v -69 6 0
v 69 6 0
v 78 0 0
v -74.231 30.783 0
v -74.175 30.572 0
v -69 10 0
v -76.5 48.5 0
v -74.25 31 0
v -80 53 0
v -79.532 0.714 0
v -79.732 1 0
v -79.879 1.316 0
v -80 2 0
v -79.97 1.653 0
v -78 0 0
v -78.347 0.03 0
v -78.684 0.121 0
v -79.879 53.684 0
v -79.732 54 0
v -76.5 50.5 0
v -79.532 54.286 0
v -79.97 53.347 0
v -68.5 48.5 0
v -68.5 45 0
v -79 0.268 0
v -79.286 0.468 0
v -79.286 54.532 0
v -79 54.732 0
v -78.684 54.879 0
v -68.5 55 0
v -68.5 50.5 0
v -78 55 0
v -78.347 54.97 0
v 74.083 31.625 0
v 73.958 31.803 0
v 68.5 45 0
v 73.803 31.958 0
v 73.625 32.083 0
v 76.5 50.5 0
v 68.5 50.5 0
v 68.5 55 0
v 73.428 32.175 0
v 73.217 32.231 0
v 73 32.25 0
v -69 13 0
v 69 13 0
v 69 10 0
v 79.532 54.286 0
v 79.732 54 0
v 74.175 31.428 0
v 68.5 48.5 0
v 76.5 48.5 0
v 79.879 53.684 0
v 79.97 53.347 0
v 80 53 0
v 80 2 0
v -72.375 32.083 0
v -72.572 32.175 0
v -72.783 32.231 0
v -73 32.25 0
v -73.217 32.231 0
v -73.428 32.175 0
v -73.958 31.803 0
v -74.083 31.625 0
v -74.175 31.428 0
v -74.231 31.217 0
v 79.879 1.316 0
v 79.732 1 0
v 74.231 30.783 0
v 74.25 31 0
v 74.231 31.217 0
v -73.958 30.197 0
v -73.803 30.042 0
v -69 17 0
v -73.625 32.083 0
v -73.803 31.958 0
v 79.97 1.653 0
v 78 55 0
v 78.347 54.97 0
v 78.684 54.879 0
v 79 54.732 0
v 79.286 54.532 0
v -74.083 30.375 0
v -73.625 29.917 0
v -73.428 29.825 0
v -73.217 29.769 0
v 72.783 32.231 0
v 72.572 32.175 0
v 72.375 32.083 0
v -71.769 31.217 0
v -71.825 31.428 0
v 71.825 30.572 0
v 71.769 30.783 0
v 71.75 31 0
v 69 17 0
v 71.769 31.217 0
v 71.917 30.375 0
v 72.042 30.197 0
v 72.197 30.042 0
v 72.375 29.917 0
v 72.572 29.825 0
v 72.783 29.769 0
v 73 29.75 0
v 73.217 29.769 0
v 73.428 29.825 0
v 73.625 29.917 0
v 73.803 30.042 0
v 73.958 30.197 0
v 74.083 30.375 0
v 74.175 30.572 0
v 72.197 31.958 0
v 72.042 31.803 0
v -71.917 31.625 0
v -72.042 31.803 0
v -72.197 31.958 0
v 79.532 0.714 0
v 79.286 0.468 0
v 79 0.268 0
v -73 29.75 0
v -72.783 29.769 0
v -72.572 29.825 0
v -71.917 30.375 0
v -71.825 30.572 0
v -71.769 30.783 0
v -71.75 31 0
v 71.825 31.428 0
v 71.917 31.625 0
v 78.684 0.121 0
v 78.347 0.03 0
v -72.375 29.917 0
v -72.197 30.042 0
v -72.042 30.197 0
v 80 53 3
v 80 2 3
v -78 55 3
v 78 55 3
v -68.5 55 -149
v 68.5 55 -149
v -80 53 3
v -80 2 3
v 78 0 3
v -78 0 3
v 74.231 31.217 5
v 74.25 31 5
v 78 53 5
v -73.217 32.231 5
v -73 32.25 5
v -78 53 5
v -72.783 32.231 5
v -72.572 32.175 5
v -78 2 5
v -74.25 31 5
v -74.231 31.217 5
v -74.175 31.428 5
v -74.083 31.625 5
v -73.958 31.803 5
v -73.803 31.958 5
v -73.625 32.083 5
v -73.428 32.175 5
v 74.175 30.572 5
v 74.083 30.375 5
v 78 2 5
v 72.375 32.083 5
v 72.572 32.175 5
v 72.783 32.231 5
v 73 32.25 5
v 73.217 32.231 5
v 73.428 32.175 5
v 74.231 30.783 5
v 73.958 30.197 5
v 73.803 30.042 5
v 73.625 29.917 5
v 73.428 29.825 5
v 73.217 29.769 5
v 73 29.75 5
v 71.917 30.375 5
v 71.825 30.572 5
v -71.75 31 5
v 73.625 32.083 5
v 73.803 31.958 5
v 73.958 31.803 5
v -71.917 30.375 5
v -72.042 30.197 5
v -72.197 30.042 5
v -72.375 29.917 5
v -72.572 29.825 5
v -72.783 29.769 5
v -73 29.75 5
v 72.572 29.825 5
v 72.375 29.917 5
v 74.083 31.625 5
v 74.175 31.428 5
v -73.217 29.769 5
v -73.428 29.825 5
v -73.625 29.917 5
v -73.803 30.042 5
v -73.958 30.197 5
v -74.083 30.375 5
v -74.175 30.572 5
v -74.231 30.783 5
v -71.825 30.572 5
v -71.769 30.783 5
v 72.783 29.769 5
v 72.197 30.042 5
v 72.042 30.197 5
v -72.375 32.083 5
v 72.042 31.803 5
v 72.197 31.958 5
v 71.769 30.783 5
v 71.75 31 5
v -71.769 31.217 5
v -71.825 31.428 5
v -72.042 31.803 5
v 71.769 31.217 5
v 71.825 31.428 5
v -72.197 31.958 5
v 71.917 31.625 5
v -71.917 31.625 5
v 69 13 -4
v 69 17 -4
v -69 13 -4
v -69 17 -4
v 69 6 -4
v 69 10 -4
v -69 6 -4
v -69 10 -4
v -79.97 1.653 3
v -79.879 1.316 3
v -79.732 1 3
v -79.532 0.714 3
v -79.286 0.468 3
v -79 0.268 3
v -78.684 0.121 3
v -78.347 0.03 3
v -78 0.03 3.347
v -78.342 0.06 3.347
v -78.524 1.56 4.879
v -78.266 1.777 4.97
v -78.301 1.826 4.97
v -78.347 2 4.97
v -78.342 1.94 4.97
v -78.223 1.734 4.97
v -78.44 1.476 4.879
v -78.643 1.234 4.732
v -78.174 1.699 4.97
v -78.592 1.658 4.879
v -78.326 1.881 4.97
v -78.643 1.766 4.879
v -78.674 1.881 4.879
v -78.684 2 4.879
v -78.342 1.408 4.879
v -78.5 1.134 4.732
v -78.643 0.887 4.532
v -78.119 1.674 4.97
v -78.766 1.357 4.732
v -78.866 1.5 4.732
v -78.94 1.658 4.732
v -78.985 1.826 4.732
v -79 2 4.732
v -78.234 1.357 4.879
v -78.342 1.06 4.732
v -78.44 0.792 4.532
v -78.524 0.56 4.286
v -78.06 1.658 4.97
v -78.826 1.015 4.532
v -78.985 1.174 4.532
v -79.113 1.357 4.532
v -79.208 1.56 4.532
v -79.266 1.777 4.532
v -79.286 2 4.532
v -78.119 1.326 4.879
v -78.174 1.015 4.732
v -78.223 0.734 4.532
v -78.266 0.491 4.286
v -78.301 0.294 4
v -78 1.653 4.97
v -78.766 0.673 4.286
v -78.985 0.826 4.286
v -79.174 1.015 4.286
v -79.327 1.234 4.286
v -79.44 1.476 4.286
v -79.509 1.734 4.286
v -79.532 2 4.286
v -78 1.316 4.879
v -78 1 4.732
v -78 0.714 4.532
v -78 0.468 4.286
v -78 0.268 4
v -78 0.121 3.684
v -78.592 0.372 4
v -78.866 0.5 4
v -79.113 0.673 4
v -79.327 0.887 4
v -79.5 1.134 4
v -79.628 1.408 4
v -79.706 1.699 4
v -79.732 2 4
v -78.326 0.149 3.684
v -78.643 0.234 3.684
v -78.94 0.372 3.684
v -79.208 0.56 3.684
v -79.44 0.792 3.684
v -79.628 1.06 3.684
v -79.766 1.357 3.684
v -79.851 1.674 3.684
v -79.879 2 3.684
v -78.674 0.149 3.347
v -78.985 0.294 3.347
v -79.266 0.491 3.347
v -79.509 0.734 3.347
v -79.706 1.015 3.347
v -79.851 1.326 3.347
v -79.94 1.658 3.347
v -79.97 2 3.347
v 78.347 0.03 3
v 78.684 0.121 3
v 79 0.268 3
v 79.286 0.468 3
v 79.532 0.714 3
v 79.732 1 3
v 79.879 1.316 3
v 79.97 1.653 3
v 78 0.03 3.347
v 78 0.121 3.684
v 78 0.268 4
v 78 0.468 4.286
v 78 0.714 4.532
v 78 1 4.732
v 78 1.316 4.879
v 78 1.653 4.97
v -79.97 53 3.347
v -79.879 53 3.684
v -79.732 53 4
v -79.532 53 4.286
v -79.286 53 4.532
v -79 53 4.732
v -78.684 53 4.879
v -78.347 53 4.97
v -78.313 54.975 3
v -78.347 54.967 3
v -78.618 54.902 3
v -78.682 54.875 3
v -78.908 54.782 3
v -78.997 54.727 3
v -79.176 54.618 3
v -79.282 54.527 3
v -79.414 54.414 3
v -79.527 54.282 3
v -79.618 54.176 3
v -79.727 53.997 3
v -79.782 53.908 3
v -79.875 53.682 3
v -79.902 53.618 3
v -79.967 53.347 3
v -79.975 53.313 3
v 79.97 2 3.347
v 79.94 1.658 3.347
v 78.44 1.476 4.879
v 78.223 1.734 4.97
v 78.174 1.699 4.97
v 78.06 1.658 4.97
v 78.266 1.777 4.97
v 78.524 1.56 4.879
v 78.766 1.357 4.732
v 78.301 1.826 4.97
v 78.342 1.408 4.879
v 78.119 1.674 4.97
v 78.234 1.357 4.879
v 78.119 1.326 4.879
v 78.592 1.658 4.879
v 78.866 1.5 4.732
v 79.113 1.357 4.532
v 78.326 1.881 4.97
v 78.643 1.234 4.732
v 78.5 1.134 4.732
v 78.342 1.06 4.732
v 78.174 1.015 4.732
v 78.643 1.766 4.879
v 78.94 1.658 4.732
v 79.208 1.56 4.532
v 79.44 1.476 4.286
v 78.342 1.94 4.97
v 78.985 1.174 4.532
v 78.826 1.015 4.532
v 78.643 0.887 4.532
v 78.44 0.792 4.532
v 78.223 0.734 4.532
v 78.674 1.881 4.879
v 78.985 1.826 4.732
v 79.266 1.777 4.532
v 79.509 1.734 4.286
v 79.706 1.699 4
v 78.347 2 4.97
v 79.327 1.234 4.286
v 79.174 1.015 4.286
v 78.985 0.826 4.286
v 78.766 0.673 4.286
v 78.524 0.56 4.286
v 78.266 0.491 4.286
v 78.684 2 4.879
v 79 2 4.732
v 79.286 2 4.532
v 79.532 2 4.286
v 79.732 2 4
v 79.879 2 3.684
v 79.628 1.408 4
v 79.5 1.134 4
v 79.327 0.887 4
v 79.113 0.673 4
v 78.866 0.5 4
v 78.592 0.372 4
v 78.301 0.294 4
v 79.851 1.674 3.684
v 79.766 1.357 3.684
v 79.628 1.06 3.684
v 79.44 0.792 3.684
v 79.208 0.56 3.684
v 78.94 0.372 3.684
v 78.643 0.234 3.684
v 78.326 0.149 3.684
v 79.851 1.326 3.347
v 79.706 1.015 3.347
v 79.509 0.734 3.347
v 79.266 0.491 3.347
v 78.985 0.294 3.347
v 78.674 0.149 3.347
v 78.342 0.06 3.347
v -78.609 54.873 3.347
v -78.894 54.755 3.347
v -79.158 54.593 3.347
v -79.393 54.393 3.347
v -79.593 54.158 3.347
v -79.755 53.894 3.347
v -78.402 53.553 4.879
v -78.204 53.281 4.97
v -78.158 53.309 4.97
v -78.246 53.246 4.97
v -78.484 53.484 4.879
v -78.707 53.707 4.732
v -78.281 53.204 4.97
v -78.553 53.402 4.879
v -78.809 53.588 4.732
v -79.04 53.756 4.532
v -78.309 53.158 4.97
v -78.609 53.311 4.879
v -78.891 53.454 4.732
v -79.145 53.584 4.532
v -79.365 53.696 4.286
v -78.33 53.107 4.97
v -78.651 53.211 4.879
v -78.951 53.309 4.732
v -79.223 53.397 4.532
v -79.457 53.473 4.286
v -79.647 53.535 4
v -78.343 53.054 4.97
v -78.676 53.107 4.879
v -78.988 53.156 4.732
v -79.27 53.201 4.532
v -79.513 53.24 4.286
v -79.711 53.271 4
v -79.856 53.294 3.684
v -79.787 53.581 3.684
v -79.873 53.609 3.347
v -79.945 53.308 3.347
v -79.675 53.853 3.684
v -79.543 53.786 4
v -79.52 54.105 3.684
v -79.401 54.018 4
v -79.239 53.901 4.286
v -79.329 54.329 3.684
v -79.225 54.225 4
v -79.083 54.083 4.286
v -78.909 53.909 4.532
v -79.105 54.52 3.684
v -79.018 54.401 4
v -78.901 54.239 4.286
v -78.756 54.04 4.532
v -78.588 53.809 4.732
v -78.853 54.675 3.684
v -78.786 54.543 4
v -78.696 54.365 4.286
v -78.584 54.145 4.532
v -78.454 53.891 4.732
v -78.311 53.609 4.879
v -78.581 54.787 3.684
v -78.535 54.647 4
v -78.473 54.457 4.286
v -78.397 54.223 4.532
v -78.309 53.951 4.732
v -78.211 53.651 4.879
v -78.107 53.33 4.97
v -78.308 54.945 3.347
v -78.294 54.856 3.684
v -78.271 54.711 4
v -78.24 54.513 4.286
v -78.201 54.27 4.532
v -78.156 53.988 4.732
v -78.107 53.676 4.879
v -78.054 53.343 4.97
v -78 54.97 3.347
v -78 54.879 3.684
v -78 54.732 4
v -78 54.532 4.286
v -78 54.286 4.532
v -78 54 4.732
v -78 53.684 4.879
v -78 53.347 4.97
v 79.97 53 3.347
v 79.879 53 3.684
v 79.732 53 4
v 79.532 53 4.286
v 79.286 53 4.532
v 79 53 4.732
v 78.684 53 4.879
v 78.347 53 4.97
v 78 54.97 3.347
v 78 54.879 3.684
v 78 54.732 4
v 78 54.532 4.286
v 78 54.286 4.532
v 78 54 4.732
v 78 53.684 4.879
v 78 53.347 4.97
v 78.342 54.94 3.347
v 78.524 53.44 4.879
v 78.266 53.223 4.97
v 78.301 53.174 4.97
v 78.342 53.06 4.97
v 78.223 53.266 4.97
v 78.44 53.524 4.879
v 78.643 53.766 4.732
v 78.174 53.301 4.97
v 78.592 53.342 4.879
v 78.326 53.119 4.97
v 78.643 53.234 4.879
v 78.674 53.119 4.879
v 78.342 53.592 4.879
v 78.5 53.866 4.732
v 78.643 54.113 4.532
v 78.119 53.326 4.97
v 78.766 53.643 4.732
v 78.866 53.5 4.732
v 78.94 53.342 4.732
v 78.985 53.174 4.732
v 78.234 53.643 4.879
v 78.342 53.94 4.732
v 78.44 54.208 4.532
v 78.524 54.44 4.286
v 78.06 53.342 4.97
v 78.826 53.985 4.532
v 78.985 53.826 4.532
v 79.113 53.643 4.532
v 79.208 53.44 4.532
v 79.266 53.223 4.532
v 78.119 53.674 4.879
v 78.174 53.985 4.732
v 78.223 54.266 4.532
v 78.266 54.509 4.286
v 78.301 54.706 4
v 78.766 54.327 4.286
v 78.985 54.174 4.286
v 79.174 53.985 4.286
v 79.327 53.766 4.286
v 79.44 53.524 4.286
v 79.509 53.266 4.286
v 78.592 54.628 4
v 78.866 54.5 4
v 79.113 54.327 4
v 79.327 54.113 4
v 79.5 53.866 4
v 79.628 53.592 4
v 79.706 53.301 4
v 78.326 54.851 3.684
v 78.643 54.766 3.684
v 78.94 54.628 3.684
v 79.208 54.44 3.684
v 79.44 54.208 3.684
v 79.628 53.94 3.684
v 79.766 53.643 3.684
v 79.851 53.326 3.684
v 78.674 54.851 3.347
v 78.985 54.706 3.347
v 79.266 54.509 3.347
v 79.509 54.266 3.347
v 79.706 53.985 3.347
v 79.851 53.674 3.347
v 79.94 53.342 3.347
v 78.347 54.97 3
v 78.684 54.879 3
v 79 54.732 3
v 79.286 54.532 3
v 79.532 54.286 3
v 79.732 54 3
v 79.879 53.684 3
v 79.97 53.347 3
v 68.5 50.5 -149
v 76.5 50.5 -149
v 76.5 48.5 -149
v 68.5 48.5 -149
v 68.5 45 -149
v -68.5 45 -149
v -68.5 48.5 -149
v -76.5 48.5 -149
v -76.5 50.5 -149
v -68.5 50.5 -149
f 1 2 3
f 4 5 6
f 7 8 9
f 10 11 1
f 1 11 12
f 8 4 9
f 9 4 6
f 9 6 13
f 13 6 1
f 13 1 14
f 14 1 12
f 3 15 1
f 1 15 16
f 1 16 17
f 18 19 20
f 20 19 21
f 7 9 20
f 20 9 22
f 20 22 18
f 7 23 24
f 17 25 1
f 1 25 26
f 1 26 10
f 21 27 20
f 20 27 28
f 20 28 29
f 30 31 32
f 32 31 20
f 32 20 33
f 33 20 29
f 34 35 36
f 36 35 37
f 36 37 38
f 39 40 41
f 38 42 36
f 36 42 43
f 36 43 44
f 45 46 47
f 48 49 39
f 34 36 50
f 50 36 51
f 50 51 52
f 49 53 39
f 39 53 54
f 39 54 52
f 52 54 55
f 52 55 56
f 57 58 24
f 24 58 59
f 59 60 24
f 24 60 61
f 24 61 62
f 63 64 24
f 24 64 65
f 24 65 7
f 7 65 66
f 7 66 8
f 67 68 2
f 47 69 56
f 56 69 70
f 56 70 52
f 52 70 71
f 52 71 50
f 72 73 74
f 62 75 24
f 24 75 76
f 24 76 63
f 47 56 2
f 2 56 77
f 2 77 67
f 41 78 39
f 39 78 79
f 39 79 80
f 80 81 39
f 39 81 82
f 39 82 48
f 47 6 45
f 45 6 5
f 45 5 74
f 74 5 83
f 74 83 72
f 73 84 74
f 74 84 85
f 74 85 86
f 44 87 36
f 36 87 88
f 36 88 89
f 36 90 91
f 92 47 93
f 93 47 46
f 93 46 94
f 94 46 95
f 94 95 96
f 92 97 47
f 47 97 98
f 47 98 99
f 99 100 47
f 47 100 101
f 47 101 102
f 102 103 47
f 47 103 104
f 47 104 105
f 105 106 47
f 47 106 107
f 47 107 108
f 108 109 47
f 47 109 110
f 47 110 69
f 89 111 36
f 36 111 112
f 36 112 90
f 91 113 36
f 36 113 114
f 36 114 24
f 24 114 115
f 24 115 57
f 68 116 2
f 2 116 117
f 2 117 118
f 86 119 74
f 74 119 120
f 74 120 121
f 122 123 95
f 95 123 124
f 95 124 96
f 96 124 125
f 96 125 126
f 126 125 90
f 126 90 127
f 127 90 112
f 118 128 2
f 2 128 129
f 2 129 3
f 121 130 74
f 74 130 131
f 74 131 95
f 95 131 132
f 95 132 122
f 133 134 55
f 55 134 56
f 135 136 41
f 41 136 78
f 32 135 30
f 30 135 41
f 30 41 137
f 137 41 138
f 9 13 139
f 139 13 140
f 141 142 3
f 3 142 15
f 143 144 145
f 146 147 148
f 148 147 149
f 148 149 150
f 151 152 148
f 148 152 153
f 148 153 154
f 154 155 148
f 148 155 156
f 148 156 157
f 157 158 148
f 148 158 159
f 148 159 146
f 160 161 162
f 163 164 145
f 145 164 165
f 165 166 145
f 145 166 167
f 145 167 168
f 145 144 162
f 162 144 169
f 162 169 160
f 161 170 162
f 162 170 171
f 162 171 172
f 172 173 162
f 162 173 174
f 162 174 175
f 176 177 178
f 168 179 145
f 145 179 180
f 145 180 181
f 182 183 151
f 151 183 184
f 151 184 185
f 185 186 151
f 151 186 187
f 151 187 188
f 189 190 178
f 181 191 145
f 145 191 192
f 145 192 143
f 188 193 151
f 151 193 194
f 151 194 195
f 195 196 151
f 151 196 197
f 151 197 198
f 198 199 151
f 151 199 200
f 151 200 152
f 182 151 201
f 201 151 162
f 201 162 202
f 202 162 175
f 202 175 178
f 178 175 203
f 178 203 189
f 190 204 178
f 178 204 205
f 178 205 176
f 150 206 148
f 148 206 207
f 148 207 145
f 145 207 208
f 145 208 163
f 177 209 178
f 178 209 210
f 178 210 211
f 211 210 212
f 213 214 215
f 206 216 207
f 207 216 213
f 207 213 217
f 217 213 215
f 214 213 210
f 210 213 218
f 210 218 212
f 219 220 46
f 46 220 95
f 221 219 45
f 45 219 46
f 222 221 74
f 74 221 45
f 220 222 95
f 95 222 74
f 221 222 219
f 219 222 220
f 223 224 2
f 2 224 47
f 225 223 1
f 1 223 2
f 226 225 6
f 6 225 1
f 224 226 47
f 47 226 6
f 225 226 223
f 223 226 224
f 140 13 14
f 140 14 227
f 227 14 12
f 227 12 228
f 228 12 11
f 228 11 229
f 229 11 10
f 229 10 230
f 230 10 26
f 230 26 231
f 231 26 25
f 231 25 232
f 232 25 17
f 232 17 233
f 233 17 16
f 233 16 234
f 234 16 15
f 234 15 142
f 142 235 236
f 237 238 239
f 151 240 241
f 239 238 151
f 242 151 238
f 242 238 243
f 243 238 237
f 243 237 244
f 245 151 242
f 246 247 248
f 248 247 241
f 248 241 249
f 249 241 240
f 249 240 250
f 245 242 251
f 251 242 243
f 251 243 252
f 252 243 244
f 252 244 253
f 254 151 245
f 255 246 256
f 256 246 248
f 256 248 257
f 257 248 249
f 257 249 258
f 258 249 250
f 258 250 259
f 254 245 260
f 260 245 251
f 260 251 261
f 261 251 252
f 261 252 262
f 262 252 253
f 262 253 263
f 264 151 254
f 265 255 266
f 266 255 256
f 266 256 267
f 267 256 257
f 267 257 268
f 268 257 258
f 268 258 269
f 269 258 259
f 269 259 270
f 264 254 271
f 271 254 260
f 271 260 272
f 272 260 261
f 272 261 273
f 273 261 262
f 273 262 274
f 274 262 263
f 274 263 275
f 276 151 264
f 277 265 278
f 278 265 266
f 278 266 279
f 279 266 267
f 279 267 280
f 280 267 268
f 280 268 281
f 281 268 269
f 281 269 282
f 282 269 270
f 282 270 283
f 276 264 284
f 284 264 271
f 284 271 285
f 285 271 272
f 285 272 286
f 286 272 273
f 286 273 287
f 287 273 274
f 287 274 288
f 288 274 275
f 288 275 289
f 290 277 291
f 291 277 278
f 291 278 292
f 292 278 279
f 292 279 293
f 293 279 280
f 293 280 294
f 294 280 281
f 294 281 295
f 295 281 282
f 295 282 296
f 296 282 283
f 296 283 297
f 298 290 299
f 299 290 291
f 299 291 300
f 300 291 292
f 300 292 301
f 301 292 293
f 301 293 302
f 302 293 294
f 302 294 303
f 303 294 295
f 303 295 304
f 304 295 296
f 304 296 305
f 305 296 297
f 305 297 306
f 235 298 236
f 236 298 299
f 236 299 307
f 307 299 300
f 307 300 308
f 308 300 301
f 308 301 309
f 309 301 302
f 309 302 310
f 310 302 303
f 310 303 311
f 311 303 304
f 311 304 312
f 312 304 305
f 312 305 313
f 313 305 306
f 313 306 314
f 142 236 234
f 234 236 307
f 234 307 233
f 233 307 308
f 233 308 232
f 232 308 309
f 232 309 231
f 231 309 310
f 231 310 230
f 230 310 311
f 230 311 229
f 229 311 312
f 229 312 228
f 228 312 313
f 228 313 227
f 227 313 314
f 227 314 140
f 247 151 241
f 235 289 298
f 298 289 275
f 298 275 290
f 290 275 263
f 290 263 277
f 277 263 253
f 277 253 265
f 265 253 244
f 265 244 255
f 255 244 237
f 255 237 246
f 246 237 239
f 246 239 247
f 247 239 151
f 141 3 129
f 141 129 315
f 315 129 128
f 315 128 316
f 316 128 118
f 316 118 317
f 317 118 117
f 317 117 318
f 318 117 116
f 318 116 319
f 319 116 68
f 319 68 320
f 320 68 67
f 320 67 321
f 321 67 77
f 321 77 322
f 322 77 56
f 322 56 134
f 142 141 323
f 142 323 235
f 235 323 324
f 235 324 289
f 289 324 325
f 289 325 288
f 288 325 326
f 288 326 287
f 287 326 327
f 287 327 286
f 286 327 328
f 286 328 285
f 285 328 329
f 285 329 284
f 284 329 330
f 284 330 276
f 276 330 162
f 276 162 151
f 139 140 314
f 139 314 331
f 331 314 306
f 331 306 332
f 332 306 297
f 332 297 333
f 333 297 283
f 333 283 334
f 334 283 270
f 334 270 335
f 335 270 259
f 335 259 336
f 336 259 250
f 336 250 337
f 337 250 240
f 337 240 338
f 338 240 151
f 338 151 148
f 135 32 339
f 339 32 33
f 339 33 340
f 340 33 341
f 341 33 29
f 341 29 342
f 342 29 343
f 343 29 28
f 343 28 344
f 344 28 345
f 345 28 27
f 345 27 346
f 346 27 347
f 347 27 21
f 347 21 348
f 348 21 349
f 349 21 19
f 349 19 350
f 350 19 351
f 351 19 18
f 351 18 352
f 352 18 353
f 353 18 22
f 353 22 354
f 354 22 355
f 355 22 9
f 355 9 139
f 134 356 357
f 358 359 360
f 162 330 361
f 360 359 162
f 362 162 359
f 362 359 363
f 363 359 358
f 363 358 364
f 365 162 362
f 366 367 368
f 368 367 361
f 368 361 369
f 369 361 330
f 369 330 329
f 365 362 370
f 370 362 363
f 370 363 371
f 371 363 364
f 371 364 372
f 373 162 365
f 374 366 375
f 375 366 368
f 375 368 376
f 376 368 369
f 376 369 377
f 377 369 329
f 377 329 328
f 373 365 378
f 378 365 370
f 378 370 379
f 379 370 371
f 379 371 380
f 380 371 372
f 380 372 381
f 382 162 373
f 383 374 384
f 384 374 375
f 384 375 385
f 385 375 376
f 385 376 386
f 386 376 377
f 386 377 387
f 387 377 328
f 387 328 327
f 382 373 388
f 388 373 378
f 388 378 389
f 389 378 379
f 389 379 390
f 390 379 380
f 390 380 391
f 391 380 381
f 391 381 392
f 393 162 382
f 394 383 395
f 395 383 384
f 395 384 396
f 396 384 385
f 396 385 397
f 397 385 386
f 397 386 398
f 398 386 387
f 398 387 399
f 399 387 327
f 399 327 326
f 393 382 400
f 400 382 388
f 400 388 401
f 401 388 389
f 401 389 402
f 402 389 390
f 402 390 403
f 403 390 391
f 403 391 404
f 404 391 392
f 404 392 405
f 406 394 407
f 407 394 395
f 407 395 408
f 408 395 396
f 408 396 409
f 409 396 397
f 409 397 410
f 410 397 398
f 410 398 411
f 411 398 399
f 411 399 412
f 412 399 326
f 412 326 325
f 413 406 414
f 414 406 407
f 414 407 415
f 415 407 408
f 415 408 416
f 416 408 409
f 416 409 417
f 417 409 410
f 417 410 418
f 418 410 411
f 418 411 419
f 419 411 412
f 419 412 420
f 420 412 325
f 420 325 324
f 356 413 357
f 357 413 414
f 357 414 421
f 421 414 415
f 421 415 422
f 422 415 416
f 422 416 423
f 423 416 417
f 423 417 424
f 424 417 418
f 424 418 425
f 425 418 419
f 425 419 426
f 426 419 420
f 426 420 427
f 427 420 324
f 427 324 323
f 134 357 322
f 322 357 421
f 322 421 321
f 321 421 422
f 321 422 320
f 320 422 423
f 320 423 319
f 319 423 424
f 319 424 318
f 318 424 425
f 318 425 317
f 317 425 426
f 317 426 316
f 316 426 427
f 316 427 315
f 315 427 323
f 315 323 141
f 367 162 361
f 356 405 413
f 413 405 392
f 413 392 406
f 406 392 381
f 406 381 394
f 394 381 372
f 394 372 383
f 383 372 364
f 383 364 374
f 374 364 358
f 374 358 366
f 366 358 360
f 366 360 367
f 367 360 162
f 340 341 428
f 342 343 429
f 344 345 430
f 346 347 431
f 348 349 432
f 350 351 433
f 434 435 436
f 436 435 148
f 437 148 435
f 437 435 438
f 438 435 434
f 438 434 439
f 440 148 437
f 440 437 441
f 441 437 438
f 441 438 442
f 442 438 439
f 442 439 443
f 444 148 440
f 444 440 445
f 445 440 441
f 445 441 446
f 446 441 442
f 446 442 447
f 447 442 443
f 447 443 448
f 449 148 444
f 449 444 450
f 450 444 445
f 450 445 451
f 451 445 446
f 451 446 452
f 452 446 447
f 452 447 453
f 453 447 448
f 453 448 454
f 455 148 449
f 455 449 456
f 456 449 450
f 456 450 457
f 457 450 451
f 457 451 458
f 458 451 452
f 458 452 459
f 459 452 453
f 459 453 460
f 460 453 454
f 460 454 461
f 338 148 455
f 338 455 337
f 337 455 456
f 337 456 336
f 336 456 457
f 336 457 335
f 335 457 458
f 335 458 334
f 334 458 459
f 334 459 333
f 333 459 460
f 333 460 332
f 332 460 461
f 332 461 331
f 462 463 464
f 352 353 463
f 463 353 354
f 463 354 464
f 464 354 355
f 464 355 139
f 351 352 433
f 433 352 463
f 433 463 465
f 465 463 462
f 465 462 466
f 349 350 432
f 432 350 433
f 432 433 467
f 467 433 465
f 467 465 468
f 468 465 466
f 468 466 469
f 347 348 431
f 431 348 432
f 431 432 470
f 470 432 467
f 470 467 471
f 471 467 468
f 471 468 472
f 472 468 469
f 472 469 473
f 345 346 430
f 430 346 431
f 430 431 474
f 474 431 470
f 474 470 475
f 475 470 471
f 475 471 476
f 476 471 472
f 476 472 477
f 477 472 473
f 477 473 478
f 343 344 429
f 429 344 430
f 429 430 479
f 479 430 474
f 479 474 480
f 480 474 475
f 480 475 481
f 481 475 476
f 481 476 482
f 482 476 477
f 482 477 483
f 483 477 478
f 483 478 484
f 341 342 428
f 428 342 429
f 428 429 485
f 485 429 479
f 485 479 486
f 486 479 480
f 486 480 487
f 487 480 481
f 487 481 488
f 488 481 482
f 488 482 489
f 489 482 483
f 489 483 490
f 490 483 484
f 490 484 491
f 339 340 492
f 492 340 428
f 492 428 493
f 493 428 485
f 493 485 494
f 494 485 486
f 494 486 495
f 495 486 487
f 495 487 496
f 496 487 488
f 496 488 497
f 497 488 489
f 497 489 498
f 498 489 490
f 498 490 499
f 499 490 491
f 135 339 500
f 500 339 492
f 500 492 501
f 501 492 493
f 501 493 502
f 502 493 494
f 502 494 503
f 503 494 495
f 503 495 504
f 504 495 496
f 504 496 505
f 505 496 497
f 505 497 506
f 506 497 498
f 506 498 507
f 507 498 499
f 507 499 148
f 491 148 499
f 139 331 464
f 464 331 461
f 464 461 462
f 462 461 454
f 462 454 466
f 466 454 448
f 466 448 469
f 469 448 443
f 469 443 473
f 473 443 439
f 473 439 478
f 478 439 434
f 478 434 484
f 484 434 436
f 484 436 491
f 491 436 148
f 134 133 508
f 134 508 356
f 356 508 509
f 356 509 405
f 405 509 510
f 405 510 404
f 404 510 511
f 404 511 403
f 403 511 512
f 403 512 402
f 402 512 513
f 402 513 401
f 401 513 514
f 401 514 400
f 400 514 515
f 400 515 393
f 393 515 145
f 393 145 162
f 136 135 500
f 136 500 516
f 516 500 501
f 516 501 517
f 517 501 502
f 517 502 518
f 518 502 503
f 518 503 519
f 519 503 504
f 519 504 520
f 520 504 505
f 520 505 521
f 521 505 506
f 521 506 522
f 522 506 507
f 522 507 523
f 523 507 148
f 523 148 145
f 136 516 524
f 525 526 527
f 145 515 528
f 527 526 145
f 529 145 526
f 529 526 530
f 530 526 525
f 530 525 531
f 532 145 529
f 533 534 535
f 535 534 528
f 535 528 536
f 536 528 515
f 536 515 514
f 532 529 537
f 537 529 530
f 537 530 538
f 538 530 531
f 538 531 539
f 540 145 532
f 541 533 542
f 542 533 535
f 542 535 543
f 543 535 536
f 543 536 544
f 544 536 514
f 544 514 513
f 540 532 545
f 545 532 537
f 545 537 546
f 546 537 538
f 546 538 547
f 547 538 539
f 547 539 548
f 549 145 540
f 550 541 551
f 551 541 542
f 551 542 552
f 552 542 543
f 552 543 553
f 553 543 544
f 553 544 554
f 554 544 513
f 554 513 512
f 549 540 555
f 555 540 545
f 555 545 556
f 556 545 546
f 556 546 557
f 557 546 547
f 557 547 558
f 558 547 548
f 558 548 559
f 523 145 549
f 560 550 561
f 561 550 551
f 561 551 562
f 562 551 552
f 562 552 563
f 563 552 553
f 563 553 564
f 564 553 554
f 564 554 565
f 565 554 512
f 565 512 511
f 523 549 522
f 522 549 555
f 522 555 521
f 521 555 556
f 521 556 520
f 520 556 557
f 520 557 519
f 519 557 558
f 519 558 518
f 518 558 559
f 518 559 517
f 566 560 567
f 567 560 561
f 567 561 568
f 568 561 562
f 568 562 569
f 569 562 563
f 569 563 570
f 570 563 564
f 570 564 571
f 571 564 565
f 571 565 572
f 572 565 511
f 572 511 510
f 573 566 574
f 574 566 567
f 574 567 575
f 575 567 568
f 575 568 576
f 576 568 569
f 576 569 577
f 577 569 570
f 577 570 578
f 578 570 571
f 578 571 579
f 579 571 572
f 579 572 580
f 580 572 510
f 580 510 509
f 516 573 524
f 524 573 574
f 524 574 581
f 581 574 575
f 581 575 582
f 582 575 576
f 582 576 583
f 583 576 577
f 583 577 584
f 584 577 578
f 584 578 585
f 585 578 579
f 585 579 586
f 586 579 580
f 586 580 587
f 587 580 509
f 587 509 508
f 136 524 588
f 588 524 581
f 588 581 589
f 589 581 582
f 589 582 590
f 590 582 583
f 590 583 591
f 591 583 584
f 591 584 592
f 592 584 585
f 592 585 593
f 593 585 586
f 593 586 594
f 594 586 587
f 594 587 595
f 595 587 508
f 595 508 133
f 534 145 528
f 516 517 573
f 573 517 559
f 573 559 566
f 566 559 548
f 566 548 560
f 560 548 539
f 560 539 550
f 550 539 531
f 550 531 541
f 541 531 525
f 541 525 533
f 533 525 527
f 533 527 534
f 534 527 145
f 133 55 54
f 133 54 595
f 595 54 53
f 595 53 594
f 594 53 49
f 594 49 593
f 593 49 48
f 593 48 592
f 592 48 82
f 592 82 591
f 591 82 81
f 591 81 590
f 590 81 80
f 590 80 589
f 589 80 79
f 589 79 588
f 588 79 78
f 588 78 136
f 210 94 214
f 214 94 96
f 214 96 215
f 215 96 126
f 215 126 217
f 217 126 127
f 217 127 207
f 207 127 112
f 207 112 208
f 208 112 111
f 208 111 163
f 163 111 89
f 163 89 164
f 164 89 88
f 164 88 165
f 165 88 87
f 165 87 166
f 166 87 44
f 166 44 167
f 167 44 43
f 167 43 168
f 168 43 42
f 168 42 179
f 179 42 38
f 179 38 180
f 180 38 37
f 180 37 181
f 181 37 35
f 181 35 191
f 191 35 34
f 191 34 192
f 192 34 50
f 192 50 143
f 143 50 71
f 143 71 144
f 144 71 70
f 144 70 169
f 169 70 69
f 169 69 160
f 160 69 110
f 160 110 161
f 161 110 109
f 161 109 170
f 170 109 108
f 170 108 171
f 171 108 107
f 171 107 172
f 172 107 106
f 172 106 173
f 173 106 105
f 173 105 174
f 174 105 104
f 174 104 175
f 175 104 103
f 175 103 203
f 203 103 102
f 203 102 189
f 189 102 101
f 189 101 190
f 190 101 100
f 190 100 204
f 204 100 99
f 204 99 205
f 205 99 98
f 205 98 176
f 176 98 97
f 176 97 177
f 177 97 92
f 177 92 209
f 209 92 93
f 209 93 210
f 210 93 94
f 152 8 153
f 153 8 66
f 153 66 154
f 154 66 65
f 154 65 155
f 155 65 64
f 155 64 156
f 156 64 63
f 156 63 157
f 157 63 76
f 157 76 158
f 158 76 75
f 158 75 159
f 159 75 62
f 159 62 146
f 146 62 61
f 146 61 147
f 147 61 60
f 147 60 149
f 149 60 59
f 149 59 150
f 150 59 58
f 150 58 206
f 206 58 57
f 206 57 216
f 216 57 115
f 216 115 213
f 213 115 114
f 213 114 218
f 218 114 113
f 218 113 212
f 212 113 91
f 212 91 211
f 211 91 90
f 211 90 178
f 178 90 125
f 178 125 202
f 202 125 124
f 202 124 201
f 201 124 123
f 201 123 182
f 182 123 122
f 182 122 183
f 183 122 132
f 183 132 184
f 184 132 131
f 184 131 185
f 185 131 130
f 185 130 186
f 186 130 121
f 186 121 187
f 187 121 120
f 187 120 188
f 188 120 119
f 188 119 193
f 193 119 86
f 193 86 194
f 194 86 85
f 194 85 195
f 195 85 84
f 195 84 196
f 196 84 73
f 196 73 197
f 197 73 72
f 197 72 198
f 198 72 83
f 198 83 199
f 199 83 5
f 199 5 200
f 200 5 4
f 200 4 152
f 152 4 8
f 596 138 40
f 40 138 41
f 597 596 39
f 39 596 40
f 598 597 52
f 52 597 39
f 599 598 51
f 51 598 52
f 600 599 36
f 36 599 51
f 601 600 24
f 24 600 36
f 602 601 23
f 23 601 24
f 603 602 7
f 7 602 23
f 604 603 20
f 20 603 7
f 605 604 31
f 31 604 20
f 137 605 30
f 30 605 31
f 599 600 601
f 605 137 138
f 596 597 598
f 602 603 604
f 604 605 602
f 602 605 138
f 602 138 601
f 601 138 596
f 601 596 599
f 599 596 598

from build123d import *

# Parameters (mm, degrees)
SKETCH1_W           = 160
SKETCH1_H           = 55
BOSS_EXTRUDE1_DEPTH = 5
SKETCH4_W           = 138
SKETCH4_H           = 4
BOSS_EXTRUDE3_DEPTH = 4
FILLET1_R           = 2
CUT_EXTRUDE1_REACH  = 99.211
SKETCH10_R          = 1.25
BOSS_EXTRUDE4_DEPTH = 149


with BuildPart() as part:
    # Sketch1 → Boss-Extrude1 (new body)
    with BuildSketch(Plane.XY):
        with Locations((0, 27.5)):
            Rectangle(SKETCH1_W, SKETCH1_H)
    extrude(amount=BOSS_EXTRUDE1_DEPTH)

    # Sketch4 → Boss-Extrude3 (add)
    with BuildSketch(Plane(origin=(0, 0, 0), x_dir=(-1, 0, 0), z_dir=(0, 0, -1))):
        with Locations((0, 15)):
            Rectangle(SKETCH4_W, SKETCH4_H)
        with Locations((0, 8)):
            Rectangle(SKETCH4_W, SKETCH4_H)
    extrude(amount=BOSS_EXTRUDE3_DEPTH)

    # Fillet1
    fillet1_edges = [part.edges().sort_by_distance(p)[0] for p in [
        (-80, 27.5, 5),
        (0, 0, 5),
        (80, 27.5, 5),
        (0, 55, 5),
        (80, 0, 2.5),
        (-80, 0, 2.5),
        (-80, 55, 2.5),
        (80, 55, 2.5),
    ]]
    fillet(fillet1_edges, radius=FILLET1_R)

    # Sketch10 → Cut-Extrude1 (cut, up to next)
    with BuildSketch(Plane(origin=(0, 0, 0), x_dir=(-1, 0, 0), z_dir=(0, 0, -1)), mode=Mode.PRIVATE) as cut_extrude1_sk1:
        with Locations((-73, 31)):
            Circle(SKETCH10_R)
    cut_extrude1_tool1 = extrude(cut_extrude1_sk1.sketch, amount=-CUT_EXTRUDE1_REACH, mode=Mode.PRIVATE) & part.part
    cut_extrude1 = cut_extrude1_tool1.solids().sort_by_distance((73, 31, 0))[0]
    add(cut_extrude1, mode=Mode.SUBTRACT)

    # Mirror1: Cut-Extrude1 across plane
    add(cut_extrude1.mirror(Plane(origin=(0, 0, 0), x_dir=(0, 0, 1), z_dir=(1, 0, 0))), mode=Mode.SUBTRACT)

    # Sketch13 → Boss-Extrude4 (add)
    with BuildSketch(Plane(origin=(0, 0, 0), x_dir=(-1, 0, 0), z_dir=(0, 0, -1))):
        Polygon((-68.5, 55), (-68.5, 50.5), (-76.5, 50.5), (-76.5, 48.5), (-68.5, 48.5), (-68.5, 45), (68.5, 45), (68.5, 48.5), (76.5, 48.5), (76.5, 50.5), (68.5, 50.5), (68.5, 55), align=None)
    extrude(amount=BOSS_EXTRUDE4_DEPTH)


solid = part.part
